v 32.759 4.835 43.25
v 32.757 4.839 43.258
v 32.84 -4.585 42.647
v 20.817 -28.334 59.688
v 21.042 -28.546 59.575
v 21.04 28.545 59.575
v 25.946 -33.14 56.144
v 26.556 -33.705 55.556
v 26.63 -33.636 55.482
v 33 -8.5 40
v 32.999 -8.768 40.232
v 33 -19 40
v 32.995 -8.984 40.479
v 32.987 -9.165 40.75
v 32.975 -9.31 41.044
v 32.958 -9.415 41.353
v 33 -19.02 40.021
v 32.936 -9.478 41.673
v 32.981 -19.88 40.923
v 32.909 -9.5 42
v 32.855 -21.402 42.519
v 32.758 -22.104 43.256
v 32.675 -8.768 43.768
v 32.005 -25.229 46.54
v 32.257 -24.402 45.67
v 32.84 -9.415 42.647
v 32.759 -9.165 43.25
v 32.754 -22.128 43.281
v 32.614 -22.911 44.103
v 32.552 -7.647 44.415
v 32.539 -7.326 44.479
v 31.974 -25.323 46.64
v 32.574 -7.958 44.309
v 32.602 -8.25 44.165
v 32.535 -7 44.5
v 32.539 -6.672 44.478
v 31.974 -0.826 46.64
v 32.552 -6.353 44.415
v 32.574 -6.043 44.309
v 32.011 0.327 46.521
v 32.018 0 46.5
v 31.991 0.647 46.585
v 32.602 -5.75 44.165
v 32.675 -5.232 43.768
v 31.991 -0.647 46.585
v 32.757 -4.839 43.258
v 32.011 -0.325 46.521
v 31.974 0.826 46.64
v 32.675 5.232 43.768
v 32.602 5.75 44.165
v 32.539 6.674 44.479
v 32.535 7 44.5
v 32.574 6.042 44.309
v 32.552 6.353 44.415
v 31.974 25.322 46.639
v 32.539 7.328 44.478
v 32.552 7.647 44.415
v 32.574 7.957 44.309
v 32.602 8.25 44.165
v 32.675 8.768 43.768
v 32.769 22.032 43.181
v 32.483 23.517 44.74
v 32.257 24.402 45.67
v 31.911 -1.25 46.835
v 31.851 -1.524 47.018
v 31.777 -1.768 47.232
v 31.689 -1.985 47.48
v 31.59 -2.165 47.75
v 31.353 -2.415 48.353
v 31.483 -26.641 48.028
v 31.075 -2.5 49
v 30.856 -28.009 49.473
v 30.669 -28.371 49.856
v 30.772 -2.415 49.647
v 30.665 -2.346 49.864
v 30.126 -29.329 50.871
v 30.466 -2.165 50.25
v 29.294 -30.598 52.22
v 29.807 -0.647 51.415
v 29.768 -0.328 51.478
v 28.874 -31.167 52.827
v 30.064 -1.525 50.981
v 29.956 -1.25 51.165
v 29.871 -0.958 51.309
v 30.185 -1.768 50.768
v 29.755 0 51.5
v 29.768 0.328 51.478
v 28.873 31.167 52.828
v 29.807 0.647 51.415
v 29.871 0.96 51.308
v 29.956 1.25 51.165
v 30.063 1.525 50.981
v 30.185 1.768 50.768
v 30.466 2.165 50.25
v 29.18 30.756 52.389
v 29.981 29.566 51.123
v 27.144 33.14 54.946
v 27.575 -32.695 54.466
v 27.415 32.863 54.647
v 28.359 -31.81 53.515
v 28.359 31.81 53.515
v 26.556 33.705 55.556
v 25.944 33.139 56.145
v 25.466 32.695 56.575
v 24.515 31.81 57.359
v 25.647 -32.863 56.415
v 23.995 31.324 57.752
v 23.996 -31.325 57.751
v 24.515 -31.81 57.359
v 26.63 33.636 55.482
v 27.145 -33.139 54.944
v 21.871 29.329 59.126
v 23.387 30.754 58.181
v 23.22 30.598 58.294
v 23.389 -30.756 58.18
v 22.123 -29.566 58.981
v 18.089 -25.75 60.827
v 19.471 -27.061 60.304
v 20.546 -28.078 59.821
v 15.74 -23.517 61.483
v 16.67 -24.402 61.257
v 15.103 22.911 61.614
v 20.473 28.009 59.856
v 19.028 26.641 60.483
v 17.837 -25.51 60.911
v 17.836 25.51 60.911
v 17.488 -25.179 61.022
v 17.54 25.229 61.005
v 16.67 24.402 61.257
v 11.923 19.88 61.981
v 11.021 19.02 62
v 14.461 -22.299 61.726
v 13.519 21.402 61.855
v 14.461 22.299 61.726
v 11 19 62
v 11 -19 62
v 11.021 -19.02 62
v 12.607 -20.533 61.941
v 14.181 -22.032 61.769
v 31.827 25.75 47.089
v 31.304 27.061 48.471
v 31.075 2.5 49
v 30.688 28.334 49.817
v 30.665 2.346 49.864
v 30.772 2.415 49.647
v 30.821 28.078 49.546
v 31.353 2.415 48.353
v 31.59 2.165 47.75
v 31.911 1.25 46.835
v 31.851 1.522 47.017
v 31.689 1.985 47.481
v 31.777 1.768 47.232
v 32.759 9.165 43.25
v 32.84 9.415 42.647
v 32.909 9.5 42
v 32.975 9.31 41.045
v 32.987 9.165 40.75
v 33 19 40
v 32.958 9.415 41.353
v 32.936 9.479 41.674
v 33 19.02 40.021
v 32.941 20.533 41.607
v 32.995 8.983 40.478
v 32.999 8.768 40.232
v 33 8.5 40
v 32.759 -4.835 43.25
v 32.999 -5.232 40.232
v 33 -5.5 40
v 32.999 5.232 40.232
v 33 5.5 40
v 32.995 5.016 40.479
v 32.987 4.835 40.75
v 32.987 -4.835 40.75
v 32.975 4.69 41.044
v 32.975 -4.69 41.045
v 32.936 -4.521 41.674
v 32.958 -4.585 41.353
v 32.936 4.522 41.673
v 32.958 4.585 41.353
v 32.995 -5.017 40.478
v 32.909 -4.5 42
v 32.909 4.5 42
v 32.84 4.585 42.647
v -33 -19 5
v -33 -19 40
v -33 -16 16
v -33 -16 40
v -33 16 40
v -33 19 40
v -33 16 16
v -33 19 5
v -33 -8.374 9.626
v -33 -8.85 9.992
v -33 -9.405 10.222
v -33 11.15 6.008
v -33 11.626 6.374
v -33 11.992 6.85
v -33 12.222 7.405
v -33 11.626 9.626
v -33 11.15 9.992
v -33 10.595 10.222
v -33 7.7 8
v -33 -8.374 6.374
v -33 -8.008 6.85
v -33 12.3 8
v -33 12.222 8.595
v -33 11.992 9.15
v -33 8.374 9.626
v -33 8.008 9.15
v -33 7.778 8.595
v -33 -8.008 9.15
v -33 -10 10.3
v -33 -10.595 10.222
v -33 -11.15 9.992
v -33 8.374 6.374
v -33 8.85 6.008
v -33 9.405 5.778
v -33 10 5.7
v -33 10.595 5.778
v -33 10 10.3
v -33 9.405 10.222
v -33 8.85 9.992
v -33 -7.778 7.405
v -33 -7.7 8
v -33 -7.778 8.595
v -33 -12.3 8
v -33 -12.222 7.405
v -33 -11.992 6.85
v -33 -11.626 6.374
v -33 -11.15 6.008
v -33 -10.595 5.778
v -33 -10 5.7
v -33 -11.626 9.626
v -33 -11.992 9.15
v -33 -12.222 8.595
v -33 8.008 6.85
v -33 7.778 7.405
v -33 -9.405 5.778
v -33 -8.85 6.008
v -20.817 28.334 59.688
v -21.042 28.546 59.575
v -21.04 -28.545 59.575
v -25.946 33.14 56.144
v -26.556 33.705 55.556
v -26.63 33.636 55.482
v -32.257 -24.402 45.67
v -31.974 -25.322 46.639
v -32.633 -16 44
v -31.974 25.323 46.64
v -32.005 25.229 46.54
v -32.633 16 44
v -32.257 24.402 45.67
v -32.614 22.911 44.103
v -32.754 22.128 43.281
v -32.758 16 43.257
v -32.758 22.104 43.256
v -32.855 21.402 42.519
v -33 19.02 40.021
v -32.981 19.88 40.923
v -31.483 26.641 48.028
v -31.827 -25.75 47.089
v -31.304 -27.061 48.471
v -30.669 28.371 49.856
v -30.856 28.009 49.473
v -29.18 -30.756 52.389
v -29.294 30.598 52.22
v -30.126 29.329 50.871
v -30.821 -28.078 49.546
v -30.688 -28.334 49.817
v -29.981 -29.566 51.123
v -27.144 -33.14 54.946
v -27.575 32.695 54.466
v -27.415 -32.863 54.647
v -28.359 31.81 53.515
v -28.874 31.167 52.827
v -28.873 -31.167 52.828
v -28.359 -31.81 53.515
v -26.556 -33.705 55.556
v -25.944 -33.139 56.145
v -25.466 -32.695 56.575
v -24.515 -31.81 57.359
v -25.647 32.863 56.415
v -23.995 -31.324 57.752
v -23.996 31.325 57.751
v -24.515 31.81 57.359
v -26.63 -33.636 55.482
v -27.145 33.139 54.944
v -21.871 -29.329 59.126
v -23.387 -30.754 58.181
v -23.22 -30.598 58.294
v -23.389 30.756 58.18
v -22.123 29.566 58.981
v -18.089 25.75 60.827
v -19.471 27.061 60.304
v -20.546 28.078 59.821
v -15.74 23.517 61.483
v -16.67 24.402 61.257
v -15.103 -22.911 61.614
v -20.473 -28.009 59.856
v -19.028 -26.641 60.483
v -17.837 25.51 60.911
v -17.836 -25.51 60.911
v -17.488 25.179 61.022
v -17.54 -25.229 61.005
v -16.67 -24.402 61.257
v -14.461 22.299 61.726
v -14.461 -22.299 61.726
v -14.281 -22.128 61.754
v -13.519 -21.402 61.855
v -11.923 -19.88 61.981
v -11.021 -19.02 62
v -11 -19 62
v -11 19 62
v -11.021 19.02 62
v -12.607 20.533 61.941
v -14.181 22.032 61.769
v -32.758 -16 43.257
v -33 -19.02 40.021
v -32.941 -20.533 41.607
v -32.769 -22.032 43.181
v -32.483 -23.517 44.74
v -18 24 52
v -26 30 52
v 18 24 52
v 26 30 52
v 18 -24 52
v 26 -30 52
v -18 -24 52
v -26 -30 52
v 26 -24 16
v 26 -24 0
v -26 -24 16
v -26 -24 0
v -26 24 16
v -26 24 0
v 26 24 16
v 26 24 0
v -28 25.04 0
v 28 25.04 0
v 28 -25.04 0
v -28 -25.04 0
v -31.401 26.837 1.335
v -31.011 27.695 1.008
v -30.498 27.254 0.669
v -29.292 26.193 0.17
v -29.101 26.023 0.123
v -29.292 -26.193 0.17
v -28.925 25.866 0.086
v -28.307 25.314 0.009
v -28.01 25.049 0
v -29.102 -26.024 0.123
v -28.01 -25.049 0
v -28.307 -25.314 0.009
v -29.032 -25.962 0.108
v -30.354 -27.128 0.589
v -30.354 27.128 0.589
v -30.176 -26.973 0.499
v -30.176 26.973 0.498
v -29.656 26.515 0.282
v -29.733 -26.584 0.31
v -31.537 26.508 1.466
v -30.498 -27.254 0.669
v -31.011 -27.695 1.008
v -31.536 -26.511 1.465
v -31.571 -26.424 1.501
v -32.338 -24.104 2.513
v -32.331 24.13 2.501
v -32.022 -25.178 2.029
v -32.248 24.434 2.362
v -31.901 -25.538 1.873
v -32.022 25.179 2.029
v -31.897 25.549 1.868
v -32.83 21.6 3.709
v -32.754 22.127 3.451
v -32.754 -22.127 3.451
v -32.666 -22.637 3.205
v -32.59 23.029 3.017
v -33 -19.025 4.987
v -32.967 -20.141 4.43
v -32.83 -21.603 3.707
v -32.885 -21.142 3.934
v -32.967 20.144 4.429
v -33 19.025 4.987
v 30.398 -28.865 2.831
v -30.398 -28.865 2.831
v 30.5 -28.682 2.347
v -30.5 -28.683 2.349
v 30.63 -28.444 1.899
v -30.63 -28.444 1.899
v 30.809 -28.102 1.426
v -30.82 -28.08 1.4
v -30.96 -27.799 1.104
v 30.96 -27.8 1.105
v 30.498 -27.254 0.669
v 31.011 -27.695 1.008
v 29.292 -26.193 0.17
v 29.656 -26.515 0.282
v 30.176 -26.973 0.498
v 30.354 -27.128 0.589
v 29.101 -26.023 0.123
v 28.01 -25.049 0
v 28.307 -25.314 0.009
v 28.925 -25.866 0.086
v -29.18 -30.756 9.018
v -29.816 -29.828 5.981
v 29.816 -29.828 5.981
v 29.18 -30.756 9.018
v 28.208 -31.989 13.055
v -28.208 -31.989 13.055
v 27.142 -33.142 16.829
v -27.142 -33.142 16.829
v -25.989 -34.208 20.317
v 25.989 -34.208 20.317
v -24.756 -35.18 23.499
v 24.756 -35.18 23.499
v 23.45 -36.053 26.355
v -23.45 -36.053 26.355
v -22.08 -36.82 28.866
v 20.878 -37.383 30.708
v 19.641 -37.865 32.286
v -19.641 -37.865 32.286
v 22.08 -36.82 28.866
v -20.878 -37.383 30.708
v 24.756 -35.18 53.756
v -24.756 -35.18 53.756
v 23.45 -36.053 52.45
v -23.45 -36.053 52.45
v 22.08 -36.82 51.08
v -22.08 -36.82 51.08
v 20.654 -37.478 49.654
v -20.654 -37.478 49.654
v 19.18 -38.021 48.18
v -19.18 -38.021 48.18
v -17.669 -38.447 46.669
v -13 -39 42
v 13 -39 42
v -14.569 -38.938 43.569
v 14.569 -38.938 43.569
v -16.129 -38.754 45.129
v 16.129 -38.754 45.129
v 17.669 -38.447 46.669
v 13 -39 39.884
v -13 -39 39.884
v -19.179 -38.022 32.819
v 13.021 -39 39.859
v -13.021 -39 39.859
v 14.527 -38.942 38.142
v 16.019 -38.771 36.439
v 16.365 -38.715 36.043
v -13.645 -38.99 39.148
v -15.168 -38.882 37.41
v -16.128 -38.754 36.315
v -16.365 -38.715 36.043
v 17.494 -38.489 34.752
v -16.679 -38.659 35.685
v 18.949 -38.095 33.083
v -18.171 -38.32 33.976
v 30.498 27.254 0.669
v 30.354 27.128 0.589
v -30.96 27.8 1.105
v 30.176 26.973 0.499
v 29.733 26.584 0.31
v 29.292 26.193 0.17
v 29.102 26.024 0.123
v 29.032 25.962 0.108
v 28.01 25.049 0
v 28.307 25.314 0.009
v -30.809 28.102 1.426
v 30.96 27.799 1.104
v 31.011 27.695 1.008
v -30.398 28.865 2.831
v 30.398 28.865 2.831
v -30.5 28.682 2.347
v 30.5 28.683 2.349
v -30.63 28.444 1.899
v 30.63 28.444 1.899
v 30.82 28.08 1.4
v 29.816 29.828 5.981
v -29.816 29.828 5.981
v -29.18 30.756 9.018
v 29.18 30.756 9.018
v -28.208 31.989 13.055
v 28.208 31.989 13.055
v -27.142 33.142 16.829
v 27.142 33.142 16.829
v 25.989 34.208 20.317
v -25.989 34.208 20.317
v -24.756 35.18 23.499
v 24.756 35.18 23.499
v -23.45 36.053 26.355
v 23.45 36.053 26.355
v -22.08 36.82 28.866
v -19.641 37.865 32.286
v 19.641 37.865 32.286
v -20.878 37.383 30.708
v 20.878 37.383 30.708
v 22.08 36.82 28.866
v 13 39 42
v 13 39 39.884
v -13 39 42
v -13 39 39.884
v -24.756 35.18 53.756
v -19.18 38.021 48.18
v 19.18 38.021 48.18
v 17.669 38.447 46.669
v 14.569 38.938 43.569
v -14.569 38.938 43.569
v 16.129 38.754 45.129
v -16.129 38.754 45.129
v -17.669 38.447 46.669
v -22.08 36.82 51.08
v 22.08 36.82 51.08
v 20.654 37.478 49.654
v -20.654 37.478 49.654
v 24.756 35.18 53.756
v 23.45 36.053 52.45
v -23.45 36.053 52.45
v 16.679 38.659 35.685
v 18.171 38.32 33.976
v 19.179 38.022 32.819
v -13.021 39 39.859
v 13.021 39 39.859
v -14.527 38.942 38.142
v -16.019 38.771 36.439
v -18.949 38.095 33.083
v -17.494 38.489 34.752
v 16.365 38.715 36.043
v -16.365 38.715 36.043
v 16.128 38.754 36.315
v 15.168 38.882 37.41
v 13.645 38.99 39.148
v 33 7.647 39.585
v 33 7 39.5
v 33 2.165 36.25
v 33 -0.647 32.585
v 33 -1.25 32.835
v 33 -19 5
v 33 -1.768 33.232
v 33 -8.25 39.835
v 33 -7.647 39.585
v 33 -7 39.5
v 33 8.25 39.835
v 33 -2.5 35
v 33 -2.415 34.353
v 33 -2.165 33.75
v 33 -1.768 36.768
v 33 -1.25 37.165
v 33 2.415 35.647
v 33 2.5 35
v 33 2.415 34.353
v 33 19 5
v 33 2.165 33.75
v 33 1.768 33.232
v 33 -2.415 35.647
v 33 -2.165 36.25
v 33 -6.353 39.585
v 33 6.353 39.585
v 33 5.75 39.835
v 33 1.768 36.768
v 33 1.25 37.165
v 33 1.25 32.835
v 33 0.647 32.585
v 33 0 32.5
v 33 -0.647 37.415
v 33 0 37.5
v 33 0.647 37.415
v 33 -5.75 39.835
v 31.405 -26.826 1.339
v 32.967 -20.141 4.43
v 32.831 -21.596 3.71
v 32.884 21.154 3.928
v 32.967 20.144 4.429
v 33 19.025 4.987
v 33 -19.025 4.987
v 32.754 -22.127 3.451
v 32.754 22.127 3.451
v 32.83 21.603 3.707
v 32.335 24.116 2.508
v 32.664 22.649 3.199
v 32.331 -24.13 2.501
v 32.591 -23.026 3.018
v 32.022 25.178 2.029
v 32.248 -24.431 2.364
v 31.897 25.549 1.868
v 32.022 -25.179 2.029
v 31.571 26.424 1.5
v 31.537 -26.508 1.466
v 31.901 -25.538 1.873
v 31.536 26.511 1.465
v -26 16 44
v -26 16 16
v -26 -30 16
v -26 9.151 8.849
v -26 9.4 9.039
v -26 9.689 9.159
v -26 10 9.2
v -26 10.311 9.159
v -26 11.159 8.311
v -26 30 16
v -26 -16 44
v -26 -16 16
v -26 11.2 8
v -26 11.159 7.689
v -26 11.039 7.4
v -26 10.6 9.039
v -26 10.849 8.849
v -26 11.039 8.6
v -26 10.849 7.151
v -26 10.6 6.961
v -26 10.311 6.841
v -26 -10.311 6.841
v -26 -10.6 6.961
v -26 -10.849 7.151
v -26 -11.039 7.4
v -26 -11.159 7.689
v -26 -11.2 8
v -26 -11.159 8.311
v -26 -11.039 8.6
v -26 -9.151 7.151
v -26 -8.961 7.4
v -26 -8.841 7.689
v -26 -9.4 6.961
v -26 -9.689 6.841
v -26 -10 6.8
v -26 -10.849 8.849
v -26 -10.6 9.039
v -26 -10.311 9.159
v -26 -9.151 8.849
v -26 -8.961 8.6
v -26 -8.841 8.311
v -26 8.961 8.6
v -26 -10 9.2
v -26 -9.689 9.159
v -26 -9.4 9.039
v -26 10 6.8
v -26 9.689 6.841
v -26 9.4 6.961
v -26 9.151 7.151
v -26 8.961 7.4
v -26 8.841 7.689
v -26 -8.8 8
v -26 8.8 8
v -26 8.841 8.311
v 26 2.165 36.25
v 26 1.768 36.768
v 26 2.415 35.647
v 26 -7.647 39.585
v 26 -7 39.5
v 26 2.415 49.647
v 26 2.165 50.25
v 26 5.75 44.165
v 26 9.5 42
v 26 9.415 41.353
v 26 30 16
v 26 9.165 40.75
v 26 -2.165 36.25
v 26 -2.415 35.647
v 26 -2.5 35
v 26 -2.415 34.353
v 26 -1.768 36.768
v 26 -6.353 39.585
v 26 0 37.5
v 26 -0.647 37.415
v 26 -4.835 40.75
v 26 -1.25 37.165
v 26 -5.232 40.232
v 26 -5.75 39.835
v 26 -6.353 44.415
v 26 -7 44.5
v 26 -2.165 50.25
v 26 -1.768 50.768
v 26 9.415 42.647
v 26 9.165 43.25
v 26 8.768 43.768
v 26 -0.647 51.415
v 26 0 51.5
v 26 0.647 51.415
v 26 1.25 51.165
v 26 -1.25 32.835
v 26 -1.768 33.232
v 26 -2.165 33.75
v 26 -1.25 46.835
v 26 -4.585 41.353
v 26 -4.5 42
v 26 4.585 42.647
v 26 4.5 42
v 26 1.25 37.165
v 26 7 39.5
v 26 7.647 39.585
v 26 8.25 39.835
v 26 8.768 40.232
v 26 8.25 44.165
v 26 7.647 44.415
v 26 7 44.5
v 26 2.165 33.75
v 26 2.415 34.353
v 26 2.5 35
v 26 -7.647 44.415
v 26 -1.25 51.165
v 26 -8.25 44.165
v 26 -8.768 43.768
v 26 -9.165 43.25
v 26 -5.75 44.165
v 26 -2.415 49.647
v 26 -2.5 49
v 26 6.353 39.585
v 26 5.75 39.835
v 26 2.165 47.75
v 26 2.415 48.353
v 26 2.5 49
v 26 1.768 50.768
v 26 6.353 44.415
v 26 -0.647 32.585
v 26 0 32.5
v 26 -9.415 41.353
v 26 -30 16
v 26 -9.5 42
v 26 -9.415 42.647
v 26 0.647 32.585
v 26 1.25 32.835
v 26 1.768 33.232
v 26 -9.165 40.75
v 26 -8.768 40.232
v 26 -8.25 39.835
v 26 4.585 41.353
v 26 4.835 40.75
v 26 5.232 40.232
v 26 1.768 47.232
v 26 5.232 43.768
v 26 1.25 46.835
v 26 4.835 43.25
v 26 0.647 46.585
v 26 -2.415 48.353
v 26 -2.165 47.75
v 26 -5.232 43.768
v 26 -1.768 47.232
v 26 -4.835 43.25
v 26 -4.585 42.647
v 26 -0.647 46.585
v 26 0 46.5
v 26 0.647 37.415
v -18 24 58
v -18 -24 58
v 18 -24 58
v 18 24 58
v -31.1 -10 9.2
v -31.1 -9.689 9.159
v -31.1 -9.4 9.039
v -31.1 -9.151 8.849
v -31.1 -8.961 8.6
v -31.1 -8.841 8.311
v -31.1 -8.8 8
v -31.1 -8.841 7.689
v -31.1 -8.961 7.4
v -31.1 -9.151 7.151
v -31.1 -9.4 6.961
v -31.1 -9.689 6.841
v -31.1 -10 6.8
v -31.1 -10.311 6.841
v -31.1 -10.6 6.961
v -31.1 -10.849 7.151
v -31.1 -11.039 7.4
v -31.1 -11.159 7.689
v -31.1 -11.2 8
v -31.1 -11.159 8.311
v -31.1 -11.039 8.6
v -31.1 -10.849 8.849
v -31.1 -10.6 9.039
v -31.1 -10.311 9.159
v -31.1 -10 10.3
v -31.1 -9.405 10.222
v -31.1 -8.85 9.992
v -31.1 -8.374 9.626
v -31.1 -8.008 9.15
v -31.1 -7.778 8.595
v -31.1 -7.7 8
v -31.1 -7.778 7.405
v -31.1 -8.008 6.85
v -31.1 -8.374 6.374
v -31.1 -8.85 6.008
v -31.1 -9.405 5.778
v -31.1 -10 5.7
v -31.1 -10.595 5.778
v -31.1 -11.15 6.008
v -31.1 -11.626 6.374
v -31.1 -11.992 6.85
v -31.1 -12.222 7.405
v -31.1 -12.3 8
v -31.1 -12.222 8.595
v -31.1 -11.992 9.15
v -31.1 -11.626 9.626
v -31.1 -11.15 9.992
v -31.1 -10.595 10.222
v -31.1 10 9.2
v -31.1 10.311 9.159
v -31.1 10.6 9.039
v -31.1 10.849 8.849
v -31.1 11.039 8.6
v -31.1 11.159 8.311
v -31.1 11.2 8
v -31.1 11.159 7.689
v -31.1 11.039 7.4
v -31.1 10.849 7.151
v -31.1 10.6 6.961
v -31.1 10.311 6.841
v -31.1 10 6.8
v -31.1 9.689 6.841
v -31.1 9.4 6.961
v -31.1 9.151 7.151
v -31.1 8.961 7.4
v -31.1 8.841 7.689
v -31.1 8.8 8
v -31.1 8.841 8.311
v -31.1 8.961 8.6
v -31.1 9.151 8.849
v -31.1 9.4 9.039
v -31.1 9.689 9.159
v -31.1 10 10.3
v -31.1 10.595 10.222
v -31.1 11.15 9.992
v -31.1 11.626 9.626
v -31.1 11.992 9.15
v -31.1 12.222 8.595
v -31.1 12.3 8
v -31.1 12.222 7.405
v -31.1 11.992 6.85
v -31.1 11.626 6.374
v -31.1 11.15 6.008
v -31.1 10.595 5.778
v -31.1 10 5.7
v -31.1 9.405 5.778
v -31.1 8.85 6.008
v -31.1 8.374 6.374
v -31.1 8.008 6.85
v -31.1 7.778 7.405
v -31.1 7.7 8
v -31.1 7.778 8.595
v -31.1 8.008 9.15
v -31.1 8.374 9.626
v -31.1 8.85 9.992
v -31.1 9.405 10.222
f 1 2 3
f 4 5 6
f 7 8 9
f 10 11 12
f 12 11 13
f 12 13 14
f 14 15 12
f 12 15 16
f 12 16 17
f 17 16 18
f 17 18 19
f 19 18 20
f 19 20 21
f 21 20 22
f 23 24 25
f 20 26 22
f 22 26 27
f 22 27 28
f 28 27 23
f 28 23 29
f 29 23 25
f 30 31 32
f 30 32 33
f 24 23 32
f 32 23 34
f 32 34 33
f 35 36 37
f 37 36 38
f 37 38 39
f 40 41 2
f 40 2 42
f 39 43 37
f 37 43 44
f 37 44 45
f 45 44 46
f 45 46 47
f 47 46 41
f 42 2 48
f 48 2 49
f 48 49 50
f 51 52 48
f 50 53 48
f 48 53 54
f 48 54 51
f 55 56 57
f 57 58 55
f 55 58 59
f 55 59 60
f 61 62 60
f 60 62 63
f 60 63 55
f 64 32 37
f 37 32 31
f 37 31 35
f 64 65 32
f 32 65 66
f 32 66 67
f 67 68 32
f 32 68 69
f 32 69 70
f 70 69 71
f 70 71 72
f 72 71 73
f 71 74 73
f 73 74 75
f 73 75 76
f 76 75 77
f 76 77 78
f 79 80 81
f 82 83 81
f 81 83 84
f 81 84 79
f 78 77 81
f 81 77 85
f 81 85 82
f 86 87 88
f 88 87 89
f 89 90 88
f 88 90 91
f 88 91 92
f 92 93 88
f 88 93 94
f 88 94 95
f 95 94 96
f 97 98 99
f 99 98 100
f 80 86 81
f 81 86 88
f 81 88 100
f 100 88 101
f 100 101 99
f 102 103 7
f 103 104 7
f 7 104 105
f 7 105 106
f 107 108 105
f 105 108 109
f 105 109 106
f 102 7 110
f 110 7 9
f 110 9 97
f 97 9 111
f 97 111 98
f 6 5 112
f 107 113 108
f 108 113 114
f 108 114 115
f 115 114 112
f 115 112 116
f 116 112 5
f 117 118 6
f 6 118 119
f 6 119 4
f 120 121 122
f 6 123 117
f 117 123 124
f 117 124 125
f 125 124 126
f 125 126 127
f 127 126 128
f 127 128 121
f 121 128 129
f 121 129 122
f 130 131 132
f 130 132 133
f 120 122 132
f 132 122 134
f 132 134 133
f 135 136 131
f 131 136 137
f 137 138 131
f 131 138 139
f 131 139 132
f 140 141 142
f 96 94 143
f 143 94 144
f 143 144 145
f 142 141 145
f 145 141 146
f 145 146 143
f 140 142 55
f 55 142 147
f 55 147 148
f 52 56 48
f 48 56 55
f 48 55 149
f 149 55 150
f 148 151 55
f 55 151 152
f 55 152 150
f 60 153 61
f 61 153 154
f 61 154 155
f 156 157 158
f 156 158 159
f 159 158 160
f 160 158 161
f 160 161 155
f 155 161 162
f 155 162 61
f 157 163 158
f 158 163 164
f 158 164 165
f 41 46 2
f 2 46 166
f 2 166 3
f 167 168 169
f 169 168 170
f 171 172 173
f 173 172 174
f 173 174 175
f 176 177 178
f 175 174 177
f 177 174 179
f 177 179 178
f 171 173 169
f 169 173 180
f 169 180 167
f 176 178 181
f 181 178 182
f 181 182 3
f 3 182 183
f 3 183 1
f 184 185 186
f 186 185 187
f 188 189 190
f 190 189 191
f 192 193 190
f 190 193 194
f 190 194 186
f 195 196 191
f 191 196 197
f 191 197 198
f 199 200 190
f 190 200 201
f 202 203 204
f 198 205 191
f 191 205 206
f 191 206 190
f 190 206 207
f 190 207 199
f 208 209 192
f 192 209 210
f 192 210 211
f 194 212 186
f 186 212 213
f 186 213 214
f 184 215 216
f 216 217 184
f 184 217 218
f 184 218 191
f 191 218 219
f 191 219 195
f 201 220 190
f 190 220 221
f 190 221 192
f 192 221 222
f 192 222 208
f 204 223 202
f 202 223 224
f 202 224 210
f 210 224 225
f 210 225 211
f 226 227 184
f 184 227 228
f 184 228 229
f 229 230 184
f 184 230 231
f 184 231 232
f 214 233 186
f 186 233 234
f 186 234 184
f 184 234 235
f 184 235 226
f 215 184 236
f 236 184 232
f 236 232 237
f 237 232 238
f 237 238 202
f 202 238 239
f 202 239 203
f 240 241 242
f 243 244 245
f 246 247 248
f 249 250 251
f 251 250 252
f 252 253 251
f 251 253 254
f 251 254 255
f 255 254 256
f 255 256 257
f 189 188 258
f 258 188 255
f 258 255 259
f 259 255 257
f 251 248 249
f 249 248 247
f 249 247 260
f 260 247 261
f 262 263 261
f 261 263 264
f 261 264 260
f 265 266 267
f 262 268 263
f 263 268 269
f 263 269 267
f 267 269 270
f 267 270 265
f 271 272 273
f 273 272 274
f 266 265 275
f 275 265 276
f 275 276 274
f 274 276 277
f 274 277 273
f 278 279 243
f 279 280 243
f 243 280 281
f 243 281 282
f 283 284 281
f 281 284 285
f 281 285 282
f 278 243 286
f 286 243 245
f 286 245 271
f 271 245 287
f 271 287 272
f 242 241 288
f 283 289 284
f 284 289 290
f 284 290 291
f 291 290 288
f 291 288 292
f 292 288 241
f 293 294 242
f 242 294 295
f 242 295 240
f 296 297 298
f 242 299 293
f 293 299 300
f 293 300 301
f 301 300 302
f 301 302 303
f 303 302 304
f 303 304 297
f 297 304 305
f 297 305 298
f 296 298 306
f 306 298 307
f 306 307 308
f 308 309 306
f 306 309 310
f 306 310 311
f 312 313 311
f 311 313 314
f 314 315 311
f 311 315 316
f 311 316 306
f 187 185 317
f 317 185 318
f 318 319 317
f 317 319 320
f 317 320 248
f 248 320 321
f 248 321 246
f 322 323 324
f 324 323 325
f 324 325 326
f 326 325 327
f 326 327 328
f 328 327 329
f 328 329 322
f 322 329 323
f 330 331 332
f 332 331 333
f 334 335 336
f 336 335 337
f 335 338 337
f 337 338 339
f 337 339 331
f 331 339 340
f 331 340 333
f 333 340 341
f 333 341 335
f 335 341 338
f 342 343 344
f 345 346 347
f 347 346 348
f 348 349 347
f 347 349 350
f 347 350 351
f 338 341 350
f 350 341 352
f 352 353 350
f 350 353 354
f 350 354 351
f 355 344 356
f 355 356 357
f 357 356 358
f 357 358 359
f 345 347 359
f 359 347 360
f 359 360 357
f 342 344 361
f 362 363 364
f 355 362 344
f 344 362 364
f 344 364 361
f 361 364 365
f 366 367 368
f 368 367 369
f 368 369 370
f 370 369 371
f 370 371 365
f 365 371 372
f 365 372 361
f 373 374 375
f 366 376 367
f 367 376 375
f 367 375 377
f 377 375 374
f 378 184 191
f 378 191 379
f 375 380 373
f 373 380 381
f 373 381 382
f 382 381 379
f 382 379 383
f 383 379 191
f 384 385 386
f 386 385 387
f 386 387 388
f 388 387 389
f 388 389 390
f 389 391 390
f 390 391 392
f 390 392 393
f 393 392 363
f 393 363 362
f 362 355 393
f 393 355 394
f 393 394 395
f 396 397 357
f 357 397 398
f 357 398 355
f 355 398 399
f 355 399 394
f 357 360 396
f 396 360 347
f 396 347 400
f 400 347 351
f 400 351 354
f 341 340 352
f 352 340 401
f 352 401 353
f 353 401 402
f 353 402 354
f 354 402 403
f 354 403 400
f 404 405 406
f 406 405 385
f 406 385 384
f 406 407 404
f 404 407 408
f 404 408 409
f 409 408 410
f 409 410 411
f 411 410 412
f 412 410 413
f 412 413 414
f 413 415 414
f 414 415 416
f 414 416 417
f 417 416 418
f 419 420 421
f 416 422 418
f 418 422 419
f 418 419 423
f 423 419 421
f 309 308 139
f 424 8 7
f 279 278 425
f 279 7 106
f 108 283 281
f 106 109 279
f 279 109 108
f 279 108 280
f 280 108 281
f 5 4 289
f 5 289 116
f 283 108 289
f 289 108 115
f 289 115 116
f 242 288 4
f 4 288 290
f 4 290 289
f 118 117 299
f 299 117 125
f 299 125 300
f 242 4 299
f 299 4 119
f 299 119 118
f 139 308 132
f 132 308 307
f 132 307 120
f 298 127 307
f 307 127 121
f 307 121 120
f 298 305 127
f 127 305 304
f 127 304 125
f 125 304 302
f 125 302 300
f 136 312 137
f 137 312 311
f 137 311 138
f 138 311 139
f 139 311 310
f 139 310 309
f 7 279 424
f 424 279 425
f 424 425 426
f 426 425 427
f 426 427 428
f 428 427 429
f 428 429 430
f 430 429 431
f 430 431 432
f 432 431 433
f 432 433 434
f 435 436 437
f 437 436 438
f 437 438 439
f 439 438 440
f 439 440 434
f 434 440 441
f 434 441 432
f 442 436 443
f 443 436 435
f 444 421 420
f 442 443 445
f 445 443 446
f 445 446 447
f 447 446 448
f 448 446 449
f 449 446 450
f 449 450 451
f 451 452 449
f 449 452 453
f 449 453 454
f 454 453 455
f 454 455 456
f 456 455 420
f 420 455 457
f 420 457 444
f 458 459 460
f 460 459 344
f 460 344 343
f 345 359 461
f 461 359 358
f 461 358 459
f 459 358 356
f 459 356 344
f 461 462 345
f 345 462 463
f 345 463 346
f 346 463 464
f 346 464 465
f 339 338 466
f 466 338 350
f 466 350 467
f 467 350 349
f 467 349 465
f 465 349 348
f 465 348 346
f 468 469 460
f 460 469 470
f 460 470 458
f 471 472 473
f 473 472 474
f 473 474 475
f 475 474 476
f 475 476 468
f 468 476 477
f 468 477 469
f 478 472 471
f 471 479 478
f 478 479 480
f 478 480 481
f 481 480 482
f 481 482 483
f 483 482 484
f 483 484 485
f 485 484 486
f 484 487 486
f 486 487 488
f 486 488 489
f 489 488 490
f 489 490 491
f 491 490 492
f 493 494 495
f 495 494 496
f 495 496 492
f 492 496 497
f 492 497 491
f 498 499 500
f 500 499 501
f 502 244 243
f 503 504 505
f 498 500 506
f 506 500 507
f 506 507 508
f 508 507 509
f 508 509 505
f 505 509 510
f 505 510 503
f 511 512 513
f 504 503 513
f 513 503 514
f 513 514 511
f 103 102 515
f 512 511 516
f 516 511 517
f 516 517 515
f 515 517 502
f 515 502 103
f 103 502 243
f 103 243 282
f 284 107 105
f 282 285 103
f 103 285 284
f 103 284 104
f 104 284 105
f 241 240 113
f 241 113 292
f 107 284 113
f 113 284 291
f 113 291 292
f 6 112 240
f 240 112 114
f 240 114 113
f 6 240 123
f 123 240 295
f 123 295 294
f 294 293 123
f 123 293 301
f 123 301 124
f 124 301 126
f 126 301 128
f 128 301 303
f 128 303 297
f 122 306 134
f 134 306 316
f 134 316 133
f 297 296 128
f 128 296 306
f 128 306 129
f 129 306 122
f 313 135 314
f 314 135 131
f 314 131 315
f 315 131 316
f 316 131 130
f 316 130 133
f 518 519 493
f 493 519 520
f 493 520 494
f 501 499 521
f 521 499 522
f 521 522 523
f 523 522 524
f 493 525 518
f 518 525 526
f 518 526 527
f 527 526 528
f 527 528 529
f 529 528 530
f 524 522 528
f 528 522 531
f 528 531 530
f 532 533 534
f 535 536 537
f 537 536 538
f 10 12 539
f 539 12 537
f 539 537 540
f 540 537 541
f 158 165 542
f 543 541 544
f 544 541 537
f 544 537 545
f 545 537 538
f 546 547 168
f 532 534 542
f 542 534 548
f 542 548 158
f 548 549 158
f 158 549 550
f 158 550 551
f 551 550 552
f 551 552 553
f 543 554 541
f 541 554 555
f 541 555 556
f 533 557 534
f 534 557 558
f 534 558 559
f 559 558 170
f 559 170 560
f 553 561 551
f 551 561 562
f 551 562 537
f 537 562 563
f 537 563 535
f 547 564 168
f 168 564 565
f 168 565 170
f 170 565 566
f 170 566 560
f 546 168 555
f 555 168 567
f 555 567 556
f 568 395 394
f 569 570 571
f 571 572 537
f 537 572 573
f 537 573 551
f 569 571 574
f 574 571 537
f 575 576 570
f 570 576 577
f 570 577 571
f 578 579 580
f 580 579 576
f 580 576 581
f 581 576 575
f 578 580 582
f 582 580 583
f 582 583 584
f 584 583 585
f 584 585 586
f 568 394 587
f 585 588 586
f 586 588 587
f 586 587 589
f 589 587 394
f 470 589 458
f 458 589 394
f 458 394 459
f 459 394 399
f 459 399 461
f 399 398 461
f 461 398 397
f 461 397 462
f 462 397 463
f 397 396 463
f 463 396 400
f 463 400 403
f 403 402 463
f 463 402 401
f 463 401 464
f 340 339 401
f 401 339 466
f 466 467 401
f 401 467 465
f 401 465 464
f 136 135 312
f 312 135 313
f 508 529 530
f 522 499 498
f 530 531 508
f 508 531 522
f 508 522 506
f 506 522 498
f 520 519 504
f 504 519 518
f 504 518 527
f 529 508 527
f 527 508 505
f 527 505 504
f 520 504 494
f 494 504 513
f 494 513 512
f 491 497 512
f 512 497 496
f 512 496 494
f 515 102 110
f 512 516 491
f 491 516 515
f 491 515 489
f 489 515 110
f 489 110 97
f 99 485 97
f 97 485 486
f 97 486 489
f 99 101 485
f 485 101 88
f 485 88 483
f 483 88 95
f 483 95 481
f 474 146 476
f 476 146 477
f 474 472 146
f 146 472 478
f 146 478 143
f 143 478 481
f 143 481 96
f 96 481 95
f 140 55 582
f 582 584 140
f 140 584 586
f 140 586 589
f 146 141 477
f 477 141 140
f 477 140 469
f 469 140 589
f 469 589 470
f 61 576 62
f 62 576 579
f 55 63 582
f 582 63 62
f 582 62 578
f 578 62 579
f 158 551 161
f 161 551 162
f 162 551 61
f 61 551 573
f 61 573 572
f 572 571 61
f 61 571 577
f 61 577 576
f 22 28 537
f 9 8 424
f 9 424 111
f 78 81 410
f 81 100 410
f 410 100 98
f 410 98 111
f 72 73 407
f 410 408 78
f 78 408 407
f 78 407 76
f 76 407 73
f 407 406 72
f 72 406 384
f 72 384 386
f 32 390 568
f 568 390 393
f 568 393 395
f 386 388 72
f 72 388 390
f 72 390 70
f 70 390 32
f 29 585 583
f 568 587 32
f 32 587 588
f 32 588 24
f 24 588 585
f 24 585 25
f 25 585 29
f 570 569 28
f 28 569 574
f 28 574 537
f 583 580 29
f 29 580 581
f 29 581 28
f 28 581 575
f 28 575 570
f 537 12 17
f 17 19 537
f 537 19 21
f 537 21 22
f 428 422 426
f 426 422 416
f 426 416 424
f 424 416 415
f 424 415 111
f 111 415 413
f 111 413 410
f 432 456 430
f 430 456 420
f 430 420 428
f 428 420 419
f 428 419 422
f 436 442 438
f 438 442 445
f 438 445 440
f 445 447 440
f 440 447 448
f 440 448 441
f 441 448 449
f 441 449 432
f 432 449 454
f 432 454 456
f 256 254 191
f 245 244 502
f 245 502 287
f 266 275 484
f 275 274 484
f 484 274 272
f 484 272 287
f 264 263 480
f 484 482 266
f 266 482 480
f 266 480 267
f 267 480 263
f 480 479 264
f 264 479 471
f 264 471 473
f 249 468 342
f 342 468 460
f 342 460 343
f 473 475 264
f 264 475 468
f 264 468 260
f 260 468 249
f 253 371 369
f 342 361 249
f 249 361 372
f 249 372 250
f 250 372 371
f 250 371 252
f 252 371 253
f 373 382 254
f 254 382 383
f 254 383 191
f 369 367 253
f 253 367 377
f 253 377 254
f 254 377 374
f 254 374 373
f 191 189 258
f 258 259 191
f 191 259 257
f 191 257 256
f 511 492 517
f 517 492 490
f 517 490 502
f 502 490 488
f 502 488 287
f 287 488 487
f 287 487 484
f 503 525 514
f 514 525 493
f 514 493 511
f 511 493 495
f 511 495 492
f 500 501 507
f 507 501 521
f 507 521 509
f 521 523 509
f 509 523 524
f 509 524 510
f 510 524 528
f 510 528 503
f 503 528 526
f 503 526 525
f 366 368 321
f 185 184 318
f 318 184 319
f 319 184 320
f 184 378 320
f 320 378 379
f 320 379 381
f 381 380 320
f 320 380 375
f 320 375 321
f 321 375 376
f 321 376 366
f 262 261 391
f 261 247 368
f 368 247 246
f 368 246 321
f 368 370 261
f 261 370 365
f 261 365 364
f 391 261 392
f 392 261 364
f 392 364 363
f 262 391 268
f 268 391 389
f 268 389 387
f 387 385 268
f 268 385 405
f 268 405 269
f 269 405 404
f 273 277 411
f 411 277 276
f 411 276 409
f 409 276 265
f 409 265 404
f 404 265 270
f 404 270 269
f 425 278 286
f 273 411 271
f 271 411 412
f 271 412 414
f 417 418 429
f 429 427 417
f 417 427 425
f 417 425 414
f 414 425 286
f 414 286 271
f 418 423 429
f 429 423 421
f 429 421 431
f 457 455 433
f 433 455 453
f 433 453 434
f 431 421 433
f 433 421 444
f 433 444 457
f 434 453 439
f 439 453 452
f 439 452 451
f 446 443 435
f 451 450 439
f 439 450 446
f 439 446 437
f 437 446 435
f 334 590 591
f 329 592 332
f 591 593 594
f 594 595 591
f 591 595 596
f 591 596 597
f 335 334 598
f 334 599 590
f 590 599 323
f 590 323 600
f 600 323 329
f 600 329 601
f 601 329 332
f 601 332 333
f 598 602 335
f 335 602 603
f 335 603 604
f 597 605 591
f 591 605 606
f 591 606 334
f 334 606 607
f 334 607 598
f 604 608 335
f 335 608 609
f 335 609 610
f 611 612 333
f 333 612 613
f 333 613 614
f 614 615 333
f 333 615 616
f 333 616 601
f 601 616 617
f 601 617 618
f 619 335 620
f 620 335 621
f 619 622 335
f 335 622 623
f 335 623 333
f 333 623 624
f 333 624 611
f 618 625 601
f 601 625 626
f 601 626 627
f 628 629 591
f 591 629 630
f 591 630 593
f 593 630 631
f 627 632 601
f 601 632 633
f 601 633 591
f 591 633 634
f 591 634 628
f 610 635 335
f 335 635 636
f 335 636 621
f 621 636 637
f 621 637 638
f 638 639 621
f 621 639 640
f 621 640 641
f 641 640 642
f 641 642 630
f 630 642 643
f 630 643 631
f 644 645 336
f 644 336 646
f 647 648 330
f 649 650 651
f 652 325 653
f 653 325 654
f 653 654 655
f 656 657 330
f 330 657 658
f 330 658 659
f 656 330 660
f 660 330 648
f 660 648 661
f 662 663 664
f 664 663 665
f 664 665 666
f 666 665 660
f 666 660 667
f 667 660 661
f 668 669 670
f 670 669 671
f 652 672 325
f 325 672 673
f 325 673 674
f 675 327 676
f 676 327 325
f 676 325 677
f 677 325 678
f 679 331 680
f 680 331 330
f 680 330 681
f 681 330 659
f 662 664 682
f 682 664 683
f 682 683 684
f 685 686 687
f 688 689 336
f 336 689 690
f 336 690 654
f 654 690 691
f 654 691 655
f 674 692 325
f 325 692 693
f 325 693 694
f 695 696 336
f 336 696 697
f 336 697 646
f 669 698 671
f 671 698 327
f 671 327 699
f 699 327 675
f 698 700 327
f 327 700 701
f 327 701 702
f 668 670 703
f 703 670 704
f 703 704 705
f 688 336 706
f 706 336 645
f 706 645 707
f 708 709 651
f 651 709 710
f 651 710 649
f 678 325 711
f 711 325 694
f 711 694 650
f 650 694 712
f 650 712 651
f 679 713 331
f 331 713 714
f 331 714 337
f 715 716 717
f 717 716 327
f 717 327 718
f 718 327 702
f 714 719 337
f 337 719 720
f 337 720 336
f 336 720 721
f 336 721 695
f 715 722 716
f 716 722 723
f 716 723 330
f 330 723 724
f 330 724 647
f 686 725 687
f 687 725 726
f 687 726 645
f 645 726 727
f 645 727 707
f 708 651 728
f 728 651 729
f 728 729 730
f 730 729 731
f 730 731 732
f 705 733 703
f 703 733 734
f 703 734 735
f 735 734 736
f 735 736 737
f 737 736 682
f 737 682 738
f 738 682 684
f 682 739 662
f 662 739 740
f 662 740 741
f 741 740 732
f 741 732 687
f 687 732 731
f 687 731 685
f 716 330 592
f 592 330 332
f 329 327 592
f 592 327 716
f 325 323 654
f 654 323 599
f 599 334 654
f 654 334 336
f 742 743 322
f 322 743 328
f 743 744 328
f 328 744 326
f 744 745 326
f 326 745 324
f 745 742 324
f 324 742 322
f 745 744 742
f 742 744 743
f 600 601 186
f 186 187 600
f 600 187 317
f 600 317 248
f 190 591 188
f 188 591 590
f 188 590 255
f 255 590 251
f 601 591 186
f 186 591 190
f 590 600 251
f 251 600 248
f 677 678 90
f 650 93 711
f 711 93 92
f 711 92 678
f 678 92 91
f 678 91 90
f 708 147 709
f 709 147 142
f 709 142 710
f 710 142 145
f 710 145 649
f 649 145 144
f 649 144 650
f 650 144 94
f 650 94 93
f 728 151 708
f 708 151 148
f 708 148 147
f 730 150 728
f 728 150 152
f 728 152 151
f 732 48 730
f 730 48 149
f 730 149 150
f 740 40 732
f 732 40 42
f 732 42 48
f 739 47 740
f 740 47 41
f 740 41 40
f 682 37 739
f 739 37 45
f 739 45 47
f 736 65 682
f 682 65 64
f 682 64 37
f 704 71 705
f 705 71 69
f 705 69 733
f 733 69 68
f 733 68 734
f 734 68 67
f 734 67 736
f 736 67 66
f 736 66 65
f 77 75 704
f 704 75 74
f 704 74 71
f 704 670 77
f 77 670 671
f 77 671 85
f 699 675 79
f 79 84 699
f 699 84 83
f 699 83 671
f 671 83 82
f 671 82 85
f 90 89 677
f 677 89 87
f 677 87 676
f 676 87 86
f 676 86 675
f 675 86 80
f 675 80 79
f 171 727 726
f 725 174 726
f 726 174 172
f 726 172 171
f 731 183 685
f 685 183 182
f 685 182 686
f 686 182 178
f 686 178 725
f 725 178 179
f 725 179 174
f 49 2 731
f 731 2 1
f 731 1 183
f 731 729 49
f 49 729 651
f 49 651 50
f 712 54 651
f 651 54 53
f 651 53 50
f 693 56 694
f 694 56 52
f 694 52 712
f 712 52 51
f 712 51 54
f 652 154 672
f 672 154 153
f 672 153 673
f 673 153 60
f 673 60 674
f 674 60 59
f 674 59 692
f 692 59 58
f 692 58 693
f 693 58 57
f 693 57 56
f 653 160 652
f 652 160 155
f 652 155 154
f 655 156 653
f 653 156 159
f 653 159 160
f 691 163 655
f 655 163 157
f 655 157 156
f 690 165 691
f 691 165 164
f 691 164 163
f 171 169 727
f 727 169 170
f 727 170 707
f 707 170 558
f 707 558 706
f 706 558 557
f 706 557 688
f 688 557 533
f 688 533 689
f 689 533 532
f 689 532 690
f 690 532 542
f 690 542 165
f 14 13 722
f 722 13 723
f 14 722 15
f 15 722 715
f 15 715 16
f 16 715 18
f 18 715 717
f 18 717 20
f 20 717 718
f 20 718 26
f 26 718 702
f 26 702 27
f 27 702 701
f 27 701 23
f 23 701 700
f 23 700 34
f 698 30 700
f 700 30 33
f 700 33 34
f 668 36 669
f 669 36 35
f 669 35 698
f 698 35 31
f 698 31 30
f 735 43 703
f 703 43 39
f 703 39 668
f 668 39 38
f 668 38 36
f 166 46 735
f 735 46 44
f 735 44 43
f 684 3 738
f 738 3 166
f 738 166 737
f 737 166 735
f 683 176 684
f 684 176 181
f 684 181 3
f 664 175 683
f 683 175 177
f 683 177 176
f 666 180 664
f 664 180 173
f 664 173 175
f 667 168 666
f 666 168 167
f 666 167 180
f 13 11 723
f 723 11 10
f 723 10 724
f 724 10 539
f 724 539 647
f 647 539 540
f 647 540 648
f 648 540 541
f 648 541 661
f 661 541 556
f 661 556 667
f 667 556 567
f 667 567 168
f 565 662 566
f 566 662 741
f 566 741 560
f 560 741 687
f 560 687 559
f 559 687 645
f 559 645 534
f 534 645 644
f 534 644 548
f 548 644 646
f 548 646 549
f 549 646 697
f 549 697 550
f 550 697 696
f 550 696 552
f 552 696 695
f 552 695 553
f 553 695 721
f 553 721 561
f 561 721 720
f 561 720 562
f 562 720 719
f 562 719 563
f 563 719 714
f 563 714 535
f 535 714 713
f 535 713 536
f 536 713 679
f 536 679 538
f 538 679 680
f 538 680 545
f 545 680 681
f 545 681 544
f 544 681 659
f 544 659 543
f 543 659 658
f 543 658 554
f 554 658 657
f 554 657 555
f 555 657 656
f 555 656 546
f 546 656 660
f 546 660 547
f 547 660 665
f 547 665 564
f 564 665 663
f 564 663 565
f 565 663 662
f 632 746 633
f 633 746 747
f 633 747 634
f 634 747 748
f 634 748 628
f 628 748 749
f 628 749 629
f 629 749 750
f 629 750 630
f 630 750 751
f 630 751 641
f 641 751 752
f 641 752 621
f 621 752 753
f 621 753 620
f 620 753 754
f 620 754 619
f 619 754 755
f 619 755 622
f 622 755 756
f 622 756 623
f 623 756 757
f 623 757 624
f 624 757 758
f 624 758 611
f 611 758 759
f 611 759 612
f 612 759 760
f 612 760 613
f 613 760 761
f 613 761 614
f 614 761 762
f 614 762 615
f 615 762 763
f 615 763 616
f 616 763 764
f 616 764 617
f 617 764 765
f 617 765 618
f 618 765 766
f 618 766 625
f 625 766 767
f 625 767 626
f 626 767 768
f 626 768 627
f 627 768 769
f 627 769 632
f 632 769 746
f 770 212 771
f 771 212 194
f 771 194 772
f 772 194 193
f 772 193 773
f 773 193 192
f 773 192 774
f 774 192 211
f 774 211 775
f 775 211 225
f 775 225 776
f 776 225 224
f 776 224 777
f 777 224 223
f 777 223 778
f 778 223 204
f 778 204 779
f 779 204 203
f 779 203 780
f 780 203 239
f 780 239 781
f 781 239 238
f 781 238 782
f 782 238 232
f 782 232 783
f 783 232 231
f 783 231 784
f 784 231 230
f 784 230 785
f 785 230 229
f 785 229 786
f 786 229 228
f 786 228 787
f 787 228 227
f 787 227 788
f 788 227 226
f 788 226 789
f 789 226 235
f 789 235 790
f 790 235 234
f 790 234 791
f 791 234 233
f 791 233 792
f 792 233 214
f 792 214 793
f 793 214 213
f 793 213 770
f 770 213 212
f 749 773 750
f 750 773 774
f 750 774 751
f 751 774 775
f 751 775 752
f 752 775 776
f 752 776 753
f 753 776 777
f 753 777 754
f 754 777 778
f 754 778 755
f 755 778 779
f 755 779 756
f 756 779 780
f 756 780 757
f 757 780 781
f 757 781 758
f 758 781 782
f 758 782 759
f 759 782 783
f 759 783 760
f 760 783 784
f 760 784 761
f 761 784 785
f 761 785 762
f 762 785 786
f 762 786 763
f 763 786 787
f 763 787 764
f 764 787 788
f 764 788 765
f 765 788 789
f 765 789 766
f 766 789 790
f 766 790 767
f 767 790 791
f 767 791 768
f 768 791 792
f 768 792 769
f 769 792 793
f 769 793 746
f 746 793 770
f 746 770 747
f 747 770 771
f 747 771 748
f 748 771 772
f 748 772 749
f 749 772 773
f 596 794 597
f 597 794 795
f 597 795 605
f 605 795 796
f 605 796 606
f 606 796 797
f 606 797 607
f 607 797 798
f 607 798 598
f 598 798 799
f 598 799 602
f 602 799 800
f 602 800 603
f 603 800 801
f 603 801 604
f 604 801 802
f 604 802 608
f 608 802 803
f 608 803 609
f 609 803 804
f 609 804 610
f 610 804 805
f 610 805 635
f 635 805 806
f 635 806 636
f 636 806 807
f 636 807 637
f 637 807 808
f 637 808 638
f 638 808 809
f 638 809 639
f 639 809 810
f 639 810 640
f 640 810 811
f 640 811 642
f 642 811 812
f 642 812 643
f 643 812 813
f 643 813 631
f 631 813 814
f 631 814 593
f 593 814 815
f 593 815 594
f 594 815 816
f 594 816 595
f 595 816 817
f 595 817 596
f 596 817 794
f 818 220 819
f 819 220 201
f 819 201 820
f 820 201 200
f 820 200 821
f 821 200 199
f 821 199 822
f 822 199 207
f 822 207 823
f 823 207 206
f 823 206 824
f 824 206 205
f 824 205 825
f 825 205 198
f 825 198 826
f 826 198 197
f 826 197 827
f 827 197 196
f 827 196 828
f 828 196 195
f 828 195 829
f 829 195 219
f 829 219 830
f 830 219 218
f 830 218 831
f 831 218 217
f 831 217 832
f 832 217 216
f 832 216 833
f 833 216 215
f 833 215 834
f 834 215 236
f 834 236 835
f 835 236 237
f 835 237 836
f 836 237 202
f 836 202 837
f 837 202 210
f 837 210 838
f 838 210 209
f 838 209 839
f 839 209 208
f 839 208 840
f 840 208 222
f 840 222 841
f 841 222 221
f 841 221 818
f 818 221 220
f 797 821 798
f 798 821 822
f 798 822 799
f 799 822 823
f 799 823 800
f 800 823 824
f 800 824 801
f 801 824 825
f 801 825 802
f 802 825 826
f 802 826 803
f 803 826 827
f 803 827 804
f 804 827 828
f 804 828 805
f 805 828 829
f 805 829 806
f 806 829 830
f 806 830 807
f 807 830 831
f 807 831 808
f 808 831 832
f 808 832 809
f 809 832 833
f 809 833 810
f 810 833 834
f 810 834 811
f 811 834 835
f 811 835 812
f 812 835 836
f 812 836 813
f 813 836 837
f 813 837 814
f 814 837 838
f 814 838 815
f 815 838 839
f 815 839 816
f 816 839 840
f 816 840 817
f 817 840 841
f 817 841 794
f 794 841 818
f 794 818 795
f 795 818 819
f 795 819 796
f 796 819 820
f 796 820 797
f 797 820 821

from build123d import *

# Parameters (mm, degrees)
BOSS_1_DEPTH    = 66
CUT_2_DEPTH     = 80
CUT_3_DEPTH     = 80
CUT_4_DEPTH     = 80
CUT_5_DEPTH     = 80
CUT_6_DEPTH     = 62.2
CUT_7_DEPTH     = 62.2
CUT_8_DEPTH     = 62.2
CUT_9_DEPTH     = 62.2
S_CUT10_W       = 52
S_CUT10_H       = 48
POCKET_10_DEPTH = 16.2
S_CUT11_W       = 52
S_CUT11_H       = 60
POCKET_11_DEPTH = 36
S_CUT12_W       = 36
S_CUT12_H       = 48
POCKET_12_DEPTH = 6.1
S_CUT13_W       = 7.2
S_CUT13_H       = 32
POCKET_13_DEPTH = 28
S_HOLE14_R      = 2.5
HOLE_14_DEPTH   = 7.2
S_HOLE15_R      = 2.5
HOLE_15_DEPTH   = 7.2
S_HOLE16_R      = 2.5
HOLE_16_DEPTH   = 7.2
S_HOLE17_R      = 2.5
HOLE_17_DEPTH   = 7.2
S_HOLE18_R      = 1.2
HOLE_18_DEPTH   = 7.2
S_HOLE19_R      = 2.3
HOLE_19_DEPTH   = 2
S_HOLE20_R      = 1.2
HOLE_20_DEPTH   = 7.2
S_HOLE21_R      = 2.3
HOLE_21_DEPTH   = 2


with BuildPart() as part:
    # S_prism1 → Boss_1 (new body)
    with BuildSketch(Plane(origin=(-33, 0, 0), x_dir=(0, 0, -1), z_dir=(1, 0, 0))):
        with BuildLine():
            Line((0, -25.0397), (0, 25.0397))
            ThreePointArc((0, 25.0397), (-0.784802451, 27.419203311), (-2.8311, 28.8651))
            Line((-2.8311, 28.8651), (-32.2859, 37.8651))
            ThreePointArc((-32.2859, 37.8651), (-36.042603994, 38.714700597), (-39.8836, 39))
            Line((-39.8836, 39), (-42, 39))
            ThreePointArc((-42, 39), (-56.1421, 33.1421), (-62, 19))
            Line((-62, 19), (-62, -19))
            ThreePointArc((-62, -19), (-56.1421, -33.1421), (-42, -39))
            Line((-42, -39), (-39.8836, -39))
            ThreePointArc((-39.8836, -39), (-36.042603994, -38.714700597), (-32.2859, -37.8651))
            Line((-32.2859, -37.8651), (-2.8311, -28.8651))
            ThreePointArc((-2.8311, -28.8651), (-0.784802451, -27.419203311), (0, -25.0397))
        make_face()
    extrude(amount=BOSS_1_DEPTH)

    # S_pcut2 → Cut_2 (cut)
    with BuildSketch(Plane(origin=(0, -40, 0), x_dir=(1, 0, 0), z_dir=(0, 1, 0))):
        with BuildLine():
            Line((33.6, -62.6), (11, -62.6))
            Line((11, -62.6), (11, -62))
            ThreePointArc((11, -62), (26.5563, -55.5563), (33, -40))
            Line((33, -40), (33.6, -40))
            Line((33.6, -40), (33.6, -62.6))
        make_face()
    extrude(amount=CUT_2_DEPTH, mode=Mode.SUBTRACT)

    # S_pcut3 → Cut_3 (cut)
    with BuildSketch(Plane(origin=(0, -40, 0), x_dir=(1, 0, 0), z_dir=(0, 1, 0))):
        with BuildLine():
            Line((-33.6, -62.6), (-11, -62.6))
            Line((-11, -62.6), (-11, -62))
            ThreePointArc((-11, -62), (-26.5563, -55.5563), (-33, -40))
            Line((-33, -40), (-33.6, -40))
            Line((-33.6, -40), (-33.6, -62.6))
        make_face()
    extrude(amount=CUT_3_DEPTH, mode=Mode.SUBTRACT)

    # S_pcut4 → Cut_4 (cut)
    with BuildSketch(Plane(origin=(0, -40, 0), x_dir=(1, 0, 0), z_dir=(0, 1, 0))):
        with BuildLine():
            Line((33.6, 0.6), (28, 0.6))
            Line((28, 0.6), (28, 0))
            ThreePointArc((28, 0), (31.5355, -1.4645), (33, -5))
            Line((33, -5), (33.6, -5))
            Line((33.6, -5), (33.6, 0.6))
        make_face()
    extrude(amount=CUT_4_DEPTH, mode=Mode.SUBTRACT)

    # S_pcut5 → Cut_5 (cut)
    with BuildSketch(Plane(origin=(0, -40, 0), x_dir=(1, 0, 0), z_dir=(0, 1, 0))):
        with BuildLine():
            Line((-33.6, 0.6), (-28, 0.6))
            Line((-28, 0.6), (-28, 0))
            ThreePointArc((-28, 0), (-31.5355, -1.4645), (-33, -5))
            Line((-33, -5), (-33.6, -5))
            Line((-33.6, -5), (-33.6, 0.6))
        make_face()
    extrude(amount=CUT_5_DEPTH, mode=Mode.SUBTRACT)

    # S_pcut6 → Cut_6 (cut)
    with BuildSketch(Plane.XY.offset(-0.1)):
        with BuildLine():
            Line((33.6, 39.6), (13, 39.6))
            Line((13, 39.6), (13, 39))
            ThreePointArc((13, 39), (27.1421, 33.1421), (33, 19))
            Line((33, 19), (33.6, 19))
            Line((33.6, 19), (33.6, 39.6))
        make_face()
    extrude(amount=CUT_6_DEPTH, mode=Mode.SUBTRACT)

    # S_pcut7 → Cut_7 (cut)
    with BuildSketch(Plane.XY.offset(-0.1)):
        with BuildLine():
            Line((33.6, -39.6), (13, -39.6))
            Line((13, -39.6), (13, -39))
            ThreePointArc((13, -39), (27.1421, -33.1421), (33, -19))
            Line((33, -19), (33.6, -19))
            Line((33.6, -19), (33.6, -39.6))
        make_face()
    extrude(amount=CUT_7_DEPTH, mode=Mode.SUBTRACT)

    # S_pcut8 → Cut_8 (cut)
    with BuildSketch(Plane.XY.offset(-0.1)):
        with BuildLine():
            Line((-33.6, 39.6), (-13, 39.6))
            Line((-13, 39.6), (-13, 39))
            ThreePointArc((-13, 39), (-27.1421, 33.1421), (-33, 19))
            Line((-33, 19), (-33.6, 19))
            Line((-33.6, 19), (-33.6, 39.6))
        make_face()
    extrude(amount=CUT_8_DEPTH, mode=Mode.SUBTRACT)

    # S_pcut9 → Cut_9 (cut)
    with BuildSketch(Plane.XY.offset(-0.1)):
        with BuildLine():
            Line((-33.6, -39.6), (-13, -39.6))
            Line((-13, -39.6), (-13, -39))
            ThreePointArc((-13, -39), (-27.1421, -33.1421), (-33, -19))
            Line((-33, -19), (-33.6, -19))
            Line((-33.6, -19), (-33.6, -39.6))
        make_face()
    extrude(amount=CUT_9_DEPTH, mode=Mode.SUBTRACT)

    # S_cut10 → Pocket_10 (cut)
    with BuildSketch(Plane.XY.offset(-0.1)):
        Rectangle(S_CUT10_W, S_CUT10_H)
    extrude(amount=POCKET_10_DEPTH, mode=Mode.SUBTRACT)

    # S_cut11 → Pocket_11 (cut)
    with BuildSketch(Plane.XY.offset(16)):
        Rectangle(S_CUT11_W, S_CUT11_H)
    extrude(amount=POCKET_11_DEPTH, mode=Mode.SUBTRACT)

    # S_cut12 → Pocket_12 (cut)
    with BuildSketch(Plane.XY.offset(51.9)):
        Rectangle(S_CUT12_W, S_CUT12_H)
    extrude(amount=POCKET_12_DEPTH, mode=Mode.SUBTRACT)

    # S_cut13 → Pocket_13 (cut)
    with BuildSketch(Plane.XY.offset(16)):
        with Locations((-29.5, 0)):
            Rectangle(S_CUT13_W, S_CUT13_H)
    extrude(amount=POCKET_13_DEPTH, mode=Mode.SUBTRACT)

    # S_hole14 → Hole_14 (cut)
    with BuildSketch(Plane(origin=(25.9, 0, 0), x_dir=(0, 0, -1), z_dir=(1, 0, 0))):
        with Locations(Location((-49, 0, 0), (0, 0, 180))):
            Circle(S_HOLE14_R)
    extrude(amount=HOLE_14_DEPTH, mode=Mode.SUBTRACT)

    # S_hole15 → Hole_15 (cut)
    with BuildSketch(Plane(origin=(25.9, 0, 0), x_dir=(0, 0, -1), z_dir=(1, 0, 0))):
        with Locations(Location((-42, 7, 0), (0, 0, 180))):
            Circle(S_HOLE15_R)
    extrude(amount=HOLE_15_DEPTH, mode=Mode.SUBTRACT)

    # S_hole16 → Hole_16 (cut)
    with BuildSketch(Plane(origin=(25.9, 0, 0), x_dir=(0, 0, -1), z_dir=(1, 0, 0))):
        with Locations(Location((-42, -7, 0), (0, 0, 180))):
            Circle(S_HOLE16_R)
    extrude(amount=HOLE_16_DEPTH, mode=Mode.SUBTRACT)

    # S_hole17 → Hole_17 (cut)
    with BuildSketch(Plane(origin=(25.9, 0, 0), x_dir=(0, 0, -1), z_dir=(1, 0, 0))):
        with Locations(Location((-35, 0, 0), (0, 0, 180))):
            Circle(S_HOLE17_R)
    extrude(amount=HOLE_17_DEPTH, mode=Mode.SUBTRACT)

    # S_hole18 → Hole_18 (cut)
    with BuildSketch(Plane(origin=(-33.1, 0, 0), x_dir=(0, 0, -1), z_dir=(1, 0, 0))):
        with Locations((-8, -10)):
            Circle(S_HOLE18_R)
    extrude(amount=HOLE_18_DEPTH, mode=Mode.SUBTRACT)

    # S_hole19 → Hole_19 (cut)
    with BuildSketch(Plane(origin=(-33.1, 0, 0), x_dir=(0, 0, -1), z_dir=(1, 0, 0))):
        with Locations((-8, -10)):
            Circle(S_HOLE19_R)
    extrude(amount=HOLE_19_DEPTH, mode=Mode.SUBTRACT)

    # S_hole20 → Hole_20 (cut)
    with BuildSketch(Plane(origin=(-33.1, 0, 0), x_dir=(0, 0, -1), z_dir=(1, 0, 0))):
        with Locations((-8, 10)):
            Circle(S_HOLE20_R)
    extrude(amount=HOLE_20_DEPTH, mode=Mode.SUBTRACT)

    # S_hole21 → Hole_21 (cut)
    with BuildSketch(Plane(origin=(-33.1, 0, 0), x_dir=(0, 0, -1), z_dir=(1, 0, 0))):
        with Locations((-8, 10)):
            Circle(S_HOLE21_R)
    extrude(amount=HOLE_21_DEPTH, mode=Mode.SUBTRACT)


solid = part.part
